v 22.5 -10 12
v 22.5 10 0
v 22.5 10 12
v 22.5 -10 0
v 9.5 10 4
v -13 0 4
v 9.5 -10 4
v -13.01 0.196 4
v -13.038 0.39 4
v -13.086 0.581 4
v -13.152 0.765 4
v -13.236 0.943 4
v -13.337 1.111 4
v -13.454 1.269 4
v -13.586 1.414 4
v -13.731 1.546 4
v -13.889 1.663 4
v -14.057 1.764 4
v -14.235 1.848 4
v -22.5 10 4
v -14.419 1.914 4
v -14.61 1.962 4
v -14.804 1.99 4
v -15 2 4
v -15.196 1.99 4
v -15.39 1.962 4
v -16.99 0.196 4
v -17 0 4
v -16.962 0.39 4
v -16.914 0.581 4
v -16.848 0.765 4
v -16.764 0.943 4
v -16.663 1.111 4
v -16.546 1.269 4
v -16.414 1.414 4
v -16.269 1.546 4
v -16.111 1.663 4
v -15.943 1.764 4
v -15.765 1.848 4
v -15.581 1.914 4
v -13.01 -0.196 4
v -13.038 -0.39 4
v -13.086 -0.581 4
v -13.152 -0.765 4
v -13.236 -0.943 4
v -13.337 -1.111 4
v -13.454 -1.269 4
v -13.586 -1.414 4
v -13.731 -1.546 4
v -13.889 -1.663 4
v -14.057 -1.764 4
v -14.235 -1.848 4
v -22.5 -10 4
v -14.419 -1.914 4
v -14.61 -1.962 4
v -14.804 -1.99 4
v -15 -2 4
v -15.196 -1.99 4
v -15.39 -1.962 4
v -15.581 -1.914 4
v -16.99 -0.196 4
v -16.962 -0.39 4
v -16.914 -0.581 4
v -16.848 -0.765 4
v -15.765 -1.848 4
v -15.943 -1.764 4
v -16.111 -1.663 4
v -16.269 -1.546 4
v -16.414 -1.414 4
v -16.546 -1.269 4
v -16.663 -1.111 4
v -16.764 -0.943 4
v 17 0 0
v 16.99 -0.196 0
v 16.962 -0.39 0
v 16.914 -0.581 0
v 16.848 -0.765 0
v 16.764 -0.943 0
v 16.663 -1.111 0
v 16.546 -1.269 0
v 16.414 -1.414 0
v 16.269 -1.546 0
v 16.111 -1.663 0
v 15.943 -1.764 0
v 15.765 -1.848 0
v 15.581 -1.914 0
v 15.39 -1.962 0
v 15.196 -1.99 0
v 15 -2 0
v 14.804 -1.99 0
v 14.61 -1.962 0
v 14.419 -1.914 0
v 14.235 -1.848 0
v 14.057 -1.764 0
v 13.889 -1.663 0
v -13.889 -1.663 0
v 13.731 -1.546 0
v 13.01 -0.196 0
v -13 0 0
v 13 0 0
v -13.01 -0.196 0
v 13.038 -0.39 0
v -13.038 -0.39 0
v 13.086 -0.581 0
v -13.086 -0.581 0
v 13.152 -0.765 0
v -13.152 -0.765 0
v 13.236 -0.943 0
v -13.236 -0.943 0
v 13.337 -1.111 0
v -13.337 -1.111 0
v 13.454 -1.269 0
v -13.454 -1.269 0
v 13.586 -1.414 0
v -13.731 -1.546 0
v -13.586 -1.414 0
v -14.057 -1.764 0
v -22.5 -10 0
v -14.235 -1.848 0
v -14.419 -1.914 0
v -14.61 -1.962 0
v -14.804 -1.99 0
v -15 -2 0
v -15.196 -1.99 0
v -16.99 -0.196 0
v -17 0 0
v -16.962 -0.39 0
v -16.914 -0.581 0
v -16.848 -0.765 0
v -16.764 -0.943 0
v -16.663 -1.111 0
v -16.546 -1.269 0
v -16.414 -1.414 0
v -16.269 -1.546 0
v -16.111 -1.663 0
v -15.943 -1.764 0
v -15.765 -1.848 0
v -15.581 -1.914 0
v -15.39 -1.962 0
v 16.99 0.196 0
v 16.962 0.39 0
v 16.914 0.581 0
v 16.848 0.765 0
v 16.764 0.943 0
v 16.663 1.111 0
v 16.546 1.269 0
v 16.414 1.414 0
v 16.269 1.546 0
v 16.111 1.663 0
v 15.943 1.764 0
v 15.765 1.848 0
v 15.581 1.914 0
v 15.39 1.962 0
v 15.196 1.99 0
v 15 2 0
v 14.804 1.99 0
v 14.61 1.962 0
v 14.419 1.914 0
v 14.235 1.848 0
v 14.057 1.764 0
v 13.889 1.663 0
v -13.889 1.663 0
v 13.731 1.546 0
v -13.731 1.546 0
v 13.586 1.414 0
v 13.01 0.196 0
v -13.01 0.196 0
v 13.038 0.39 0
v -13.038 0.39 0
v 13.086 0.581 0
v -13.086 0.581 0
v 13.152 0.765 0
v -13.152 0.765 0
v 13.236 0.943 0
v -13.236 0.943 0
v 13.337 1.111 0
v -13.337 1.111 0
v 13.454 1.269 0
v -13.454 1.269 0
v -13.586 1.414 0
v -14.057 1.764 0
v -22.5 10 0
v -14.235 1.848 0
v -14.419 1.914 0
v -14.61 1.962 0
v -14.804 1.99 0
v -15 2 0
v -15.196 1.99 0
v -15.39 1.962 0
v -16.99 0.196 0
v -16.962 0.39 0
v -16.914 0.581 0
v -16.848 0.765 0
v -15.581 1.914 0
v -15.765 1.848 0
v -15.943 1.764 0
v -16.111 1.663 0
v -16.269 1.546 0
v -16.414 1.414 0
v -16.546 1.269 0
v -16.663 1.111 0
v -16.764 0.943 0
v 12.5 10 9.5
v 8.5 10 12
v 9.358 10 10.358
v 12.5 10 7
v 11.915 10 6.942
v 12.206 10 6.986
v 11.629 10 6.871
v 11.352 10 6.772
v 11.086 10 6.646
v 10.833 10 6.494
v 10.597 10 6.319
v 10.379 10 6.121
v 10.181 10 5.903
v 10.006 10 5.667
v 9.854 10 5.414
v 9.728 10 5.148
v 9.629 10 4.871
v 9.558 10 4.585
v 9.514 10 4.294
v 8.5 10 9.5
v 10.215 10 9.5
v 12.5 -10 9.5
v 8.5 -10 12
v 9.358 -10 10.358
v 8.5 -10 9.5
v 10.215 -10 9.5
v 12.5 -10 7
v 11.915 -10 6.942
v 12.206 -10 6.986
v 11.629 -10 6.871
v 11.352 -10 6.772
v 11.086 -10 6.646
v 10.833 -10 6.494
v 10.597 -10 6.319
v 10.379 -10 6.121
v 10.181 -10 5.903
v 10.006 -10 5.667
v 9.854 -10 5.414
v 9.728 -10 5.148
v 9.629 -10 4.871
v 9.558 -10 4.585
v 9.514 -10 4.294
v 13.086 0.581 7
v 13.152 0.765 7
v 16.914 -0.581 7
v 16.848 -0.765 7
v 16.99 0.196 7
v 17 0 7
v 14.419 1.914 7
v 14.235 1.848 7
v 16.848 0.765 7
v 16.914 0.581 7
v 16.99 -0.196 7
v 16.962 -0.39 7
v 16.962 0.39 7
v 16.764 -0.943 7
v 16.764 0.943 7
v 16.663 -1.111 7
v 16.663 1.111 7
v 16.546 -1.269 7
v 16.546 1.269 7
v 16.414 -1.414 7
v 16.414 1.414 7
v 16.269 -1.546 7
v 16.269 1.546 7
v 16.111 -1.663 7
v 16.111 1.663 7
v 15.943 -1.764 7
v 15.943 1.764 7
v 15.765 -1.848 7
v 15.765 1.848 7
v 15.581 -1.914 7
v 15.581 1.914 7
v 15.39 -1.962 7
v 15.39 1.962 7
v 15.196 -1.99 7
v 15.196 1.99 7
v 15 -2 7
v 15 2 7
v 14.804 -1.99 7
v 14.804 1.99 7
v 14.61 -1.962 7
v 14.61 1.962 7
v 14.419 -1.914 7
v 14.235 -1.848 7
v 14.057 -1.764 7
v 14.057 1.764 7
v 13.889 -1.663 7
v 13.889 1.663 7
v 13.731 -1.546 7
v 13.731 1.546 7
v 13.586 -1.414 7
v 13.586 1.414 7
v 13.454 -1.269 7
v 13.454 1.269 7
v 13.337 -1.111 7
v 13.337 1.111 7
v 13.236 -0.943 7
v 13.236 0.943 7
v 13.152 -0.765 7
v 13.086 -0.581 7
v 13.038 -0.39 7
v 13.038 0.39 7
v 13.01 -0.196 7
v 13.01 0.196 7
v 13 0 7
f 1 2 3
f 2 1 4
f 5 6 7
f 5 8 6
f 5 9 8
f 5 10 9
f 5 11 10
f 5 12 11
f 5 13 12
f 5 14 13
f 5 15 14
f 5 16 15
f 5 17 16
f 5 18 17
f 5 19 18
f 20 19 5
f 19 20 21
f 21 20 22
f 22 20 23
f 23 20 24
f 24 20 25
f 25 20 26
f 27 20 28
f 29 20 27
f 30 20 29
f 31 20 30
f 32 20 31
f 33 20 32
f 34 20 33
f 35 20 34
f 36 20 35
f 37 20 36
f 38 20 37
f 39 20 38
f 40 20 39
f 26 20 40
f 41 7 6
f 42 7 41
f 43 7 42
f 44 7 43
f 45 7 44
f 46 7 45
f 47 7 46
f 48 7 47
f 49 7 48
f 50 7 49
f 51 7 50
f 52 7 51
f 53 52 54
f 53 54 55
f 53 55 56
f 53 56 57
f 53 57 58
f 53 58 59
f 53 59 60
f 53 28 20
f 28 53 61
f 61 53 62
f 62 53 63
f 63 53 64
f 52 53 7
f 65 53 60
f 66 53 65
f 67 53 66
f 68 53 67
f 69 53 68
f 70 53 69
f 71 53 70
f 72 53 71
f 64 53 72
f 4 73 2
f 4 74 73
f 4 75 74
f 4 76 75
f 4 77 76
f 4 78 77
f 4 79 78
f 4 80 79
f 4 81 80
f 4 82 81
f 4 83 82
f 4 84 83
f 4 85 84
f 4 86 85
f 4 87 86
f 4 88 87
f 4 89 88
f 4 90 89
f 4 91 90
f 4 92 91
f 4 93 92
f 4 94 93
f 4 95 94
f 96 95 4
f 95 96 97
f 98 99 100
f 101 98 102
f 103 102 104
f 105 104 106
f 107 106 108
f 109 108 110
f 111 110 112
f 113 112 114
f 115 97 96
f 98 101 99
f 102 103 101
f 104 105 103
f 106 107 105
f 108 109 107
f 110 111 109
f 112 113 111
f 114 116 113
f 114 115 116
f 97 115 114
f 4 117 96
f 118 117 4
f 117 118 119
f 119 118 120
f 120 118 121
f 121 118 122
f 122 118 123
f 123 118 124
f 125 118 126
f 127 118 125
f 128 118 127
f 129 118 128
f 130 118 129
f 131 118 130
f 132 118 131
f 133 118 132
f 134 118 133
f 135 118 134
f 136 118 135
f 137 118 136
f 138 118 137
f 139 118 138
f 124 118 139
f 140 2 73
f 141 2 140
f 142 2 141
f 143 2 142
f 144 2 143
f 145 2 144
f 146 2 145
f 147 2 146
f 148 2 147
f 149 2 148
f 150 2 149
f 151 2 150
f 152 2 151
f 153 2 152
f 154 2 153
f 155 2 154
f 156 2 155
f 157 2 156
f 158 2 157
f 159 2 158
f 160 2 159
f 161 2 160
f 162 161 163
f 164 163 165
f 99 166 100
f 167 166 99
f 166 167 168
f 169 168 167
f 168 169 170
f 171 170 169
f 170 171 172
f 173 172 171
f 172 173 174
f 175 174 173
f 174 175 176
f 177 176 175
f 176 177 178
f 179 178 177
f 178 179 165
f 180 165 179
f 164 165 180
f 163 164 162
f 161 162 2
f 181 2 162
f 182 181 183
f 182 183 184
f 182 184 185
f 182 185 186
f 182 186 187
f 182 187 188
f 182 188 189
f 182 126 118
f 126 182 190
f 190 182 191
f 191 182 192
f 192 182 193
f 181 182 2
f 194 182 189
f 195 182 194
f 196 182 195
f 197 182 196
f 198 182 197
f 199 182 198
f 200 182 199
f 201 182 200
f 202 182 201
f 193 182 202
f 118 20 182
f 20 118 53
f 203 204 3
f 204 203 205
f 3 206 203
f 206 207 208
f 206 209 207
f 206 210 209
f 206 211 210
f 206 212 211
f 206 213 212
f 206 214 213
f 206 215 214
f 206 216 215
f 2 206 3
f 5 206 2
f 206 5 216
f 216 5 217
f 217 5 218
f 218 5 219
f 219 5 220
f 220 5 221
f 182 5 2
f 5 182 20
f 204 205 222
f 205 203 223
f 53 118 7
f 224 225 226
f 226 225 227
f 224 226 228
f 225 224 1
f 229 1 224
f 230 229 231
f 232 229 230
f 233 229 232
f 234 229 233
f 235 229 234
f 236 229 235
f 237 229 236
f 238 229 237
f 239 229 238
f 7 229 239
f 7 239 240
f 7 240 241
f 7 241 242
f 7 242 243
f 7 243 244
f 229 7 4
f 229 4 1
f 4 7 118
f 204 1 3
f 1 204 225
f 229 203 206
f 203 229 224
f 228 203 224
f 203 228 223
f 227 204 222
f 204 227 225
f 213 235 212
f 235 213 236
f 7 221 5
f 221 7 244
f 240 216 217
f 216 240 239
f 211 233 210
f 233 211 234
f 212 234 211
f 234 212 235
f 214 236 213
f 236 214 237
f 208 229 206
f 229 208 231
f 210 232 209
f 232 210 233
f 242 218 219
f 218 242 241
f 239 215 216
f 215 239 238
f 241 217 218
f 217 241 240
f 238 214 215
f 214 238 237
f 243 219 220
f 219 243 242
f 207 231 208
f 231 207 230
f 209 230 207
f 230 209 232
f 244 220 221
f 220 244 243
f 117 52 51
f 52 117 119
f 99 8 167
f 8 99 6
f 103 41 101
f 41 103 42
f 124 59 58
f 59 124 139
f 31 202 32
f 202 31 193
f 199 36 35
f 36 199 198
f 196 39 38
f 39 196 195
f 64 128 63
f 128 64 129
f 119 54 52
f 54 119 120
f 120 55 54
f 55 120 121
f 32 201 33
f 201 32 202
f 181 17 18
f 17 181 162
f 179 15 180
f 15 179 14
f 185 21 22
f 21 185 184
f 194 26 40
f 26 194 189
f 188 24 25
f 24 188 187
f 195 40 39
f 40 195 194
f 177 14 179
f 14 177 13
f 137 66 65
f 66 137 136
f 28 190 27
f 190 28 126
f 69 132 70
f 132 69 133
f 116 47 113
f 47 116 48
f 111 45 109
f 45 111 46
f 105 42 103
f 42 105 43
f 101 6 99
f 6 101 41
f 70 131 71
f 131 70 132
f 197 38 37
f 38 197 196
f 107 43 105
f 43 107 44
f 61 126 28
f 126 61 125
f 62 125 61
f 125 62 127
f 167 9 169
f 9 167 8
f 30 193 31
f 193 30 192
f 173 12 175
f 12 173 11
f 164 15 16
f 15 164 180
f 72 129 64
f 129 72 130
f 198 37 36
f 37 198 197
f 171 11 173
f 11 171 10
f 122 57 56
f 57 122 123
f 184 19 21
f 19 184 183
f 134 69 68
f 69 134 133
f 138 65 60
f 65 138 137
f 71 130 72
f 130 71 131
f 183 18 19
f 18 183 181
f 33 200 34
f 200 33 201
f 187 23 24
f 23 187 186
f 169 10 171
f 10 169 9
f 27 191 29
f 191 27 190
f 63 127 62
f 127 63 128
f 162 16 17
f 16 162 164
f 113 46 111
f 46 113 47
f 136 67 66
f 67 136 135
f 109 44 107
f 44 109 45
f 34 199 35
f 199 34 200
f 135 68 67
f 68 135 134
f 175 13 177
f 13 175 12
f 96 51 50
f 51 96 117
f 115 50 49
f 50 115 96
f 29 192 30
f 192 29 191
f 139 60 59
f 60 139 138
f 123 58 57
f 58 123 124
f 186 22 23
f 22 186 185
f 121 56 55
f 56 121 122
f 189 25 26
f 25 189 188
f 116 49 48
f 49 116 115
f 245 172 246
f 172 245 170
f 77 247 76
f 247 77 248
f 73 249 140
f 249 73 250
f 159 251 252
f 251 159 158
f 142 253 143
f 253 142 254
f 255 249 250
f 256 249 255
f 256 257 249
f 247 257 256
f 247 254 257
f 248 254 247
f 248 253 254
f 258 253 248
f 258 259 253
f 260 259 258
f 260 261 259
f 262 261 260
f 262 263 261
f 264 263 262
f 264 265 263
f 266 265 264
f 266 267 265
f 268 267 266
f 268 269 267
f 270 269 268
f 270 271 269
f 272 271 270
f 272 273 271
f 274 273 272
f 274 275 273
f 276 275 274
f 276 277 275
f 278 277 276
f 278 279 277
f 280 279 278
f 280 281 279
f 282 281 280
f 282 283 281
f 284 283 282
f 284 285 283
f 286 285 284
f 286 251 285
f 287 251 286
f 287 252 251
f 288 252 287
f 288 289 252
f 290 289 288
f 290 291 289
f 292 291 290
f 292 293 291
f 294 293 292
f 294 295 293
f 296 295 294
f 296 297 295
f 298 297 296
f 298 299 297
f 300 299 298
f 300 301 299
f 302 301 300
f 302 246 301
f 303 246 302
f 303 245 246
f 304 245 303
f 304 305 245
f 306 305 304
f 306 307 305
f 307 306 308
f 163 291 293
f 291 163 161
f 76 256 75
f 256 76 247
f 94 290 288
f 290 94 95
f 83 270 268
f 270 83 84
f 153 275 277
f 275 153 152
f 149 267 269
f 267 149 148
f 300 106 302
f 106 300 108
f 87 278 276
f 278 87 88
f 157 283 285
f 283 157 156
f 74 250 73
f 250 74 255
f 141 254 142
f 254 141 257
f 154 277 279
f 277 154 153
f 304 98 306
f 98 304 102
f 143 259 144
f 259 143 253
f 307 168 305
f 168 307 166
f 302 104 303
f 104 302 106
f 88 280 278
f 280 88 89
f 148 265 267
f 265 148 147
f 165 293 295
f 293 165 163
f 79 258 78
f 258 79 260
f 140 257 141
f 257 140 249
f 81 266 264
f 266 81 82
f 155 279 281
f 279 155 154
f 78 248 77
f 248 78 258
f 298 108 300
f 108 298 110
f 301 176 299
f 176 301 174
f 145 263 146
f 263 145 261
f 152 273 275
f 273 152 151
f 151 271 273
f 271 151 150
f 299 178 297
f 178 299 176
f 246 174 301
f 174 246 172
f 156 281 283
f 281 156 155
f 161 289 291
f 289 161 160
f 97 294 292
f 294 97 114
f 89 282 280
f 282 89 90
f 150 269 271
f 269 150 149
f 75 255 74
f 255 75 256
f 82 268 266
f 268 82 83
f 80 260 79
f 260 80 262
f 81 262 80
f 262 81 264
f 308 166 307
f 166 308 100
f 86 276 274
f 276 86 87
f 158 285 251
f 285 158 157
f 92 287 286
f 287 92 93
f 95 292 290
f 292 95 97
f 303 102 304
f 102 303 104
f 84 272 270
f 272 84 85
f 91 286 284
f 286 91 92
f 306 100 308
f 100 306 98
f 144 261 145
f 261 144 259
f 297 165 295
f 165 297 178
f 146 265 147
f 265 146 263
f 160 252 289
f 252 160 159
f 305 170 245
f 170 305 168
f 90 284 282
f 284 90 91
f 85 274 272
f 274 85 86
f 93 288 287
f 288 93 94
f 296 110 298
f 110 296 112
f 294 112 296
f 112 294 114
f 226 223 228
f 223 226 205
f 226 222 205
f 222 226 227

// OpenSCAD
// Freezer door latch clip - PETG, mm
$fn=64;
// Key dimensions
 Overall_length=45;
Overall_width=20;
Base_thickness=4;
Hook_height=8;
Mounting_hole_diameter=4;
Mounting_hole_spacing=30;
Hook_depth=10;
Lip_overhang=4;
Lip_thickness=2.5;
Fillet_r=3;
Lead_chamfer=1.2;
// Derived
Hook_x0 = Overall_length/2 - Hook_depth;
Lip_z0 = Base_thickness + Hook_height - Lip_thickness;
difference(){
  union(){
    // base plate
    translate([-Overall_length/2, -Overall_width/2, 0])
      cube([Overall_length, Overall_width, Base_thickness]);
    // hook upright - thickened to prevent fatigue snap
    translate([Hook_x0, -Overall_width/2, Base_thickness])
      cube([Hook_depth, Overall_width, Hook_height]);
    // catch lip overhanging toward center (-X)
    translate([Hook_x0 - Lip_overhang, -Overall_width/2, Lip_z0])
      cube([Lip_overhang + Hook_depth, Overall_width, Lip_thickness]);
    // fillet / reinforcement at base-hook junction
    rotate([90,0,0])
      translate([Hook_x0, Base_thickness, -Overall_width/2])
        cylinder(r=Fillet_r, h=Overall_width);
  }
  // two mounting through holes
  for(sx=[-1,1])
    translate([sx*Mounting_hole_spacing/2, 0, -0.5])
      cylinder(d=Mounting_hole_diameter, h=Base_thickness+Lip_thickness+1);
  // lead-in bevel on lip nose for snap-fit
  translate([Hook_x0 - Lip_overhang -0.5, -Overall_width/2 -0.5, Lip_z0 -0.5])
    rotate([0,45,0])
      cube([Lead_chamfer*1.6, Overall_width+1, Lead_chamfer*1.6]);
}
